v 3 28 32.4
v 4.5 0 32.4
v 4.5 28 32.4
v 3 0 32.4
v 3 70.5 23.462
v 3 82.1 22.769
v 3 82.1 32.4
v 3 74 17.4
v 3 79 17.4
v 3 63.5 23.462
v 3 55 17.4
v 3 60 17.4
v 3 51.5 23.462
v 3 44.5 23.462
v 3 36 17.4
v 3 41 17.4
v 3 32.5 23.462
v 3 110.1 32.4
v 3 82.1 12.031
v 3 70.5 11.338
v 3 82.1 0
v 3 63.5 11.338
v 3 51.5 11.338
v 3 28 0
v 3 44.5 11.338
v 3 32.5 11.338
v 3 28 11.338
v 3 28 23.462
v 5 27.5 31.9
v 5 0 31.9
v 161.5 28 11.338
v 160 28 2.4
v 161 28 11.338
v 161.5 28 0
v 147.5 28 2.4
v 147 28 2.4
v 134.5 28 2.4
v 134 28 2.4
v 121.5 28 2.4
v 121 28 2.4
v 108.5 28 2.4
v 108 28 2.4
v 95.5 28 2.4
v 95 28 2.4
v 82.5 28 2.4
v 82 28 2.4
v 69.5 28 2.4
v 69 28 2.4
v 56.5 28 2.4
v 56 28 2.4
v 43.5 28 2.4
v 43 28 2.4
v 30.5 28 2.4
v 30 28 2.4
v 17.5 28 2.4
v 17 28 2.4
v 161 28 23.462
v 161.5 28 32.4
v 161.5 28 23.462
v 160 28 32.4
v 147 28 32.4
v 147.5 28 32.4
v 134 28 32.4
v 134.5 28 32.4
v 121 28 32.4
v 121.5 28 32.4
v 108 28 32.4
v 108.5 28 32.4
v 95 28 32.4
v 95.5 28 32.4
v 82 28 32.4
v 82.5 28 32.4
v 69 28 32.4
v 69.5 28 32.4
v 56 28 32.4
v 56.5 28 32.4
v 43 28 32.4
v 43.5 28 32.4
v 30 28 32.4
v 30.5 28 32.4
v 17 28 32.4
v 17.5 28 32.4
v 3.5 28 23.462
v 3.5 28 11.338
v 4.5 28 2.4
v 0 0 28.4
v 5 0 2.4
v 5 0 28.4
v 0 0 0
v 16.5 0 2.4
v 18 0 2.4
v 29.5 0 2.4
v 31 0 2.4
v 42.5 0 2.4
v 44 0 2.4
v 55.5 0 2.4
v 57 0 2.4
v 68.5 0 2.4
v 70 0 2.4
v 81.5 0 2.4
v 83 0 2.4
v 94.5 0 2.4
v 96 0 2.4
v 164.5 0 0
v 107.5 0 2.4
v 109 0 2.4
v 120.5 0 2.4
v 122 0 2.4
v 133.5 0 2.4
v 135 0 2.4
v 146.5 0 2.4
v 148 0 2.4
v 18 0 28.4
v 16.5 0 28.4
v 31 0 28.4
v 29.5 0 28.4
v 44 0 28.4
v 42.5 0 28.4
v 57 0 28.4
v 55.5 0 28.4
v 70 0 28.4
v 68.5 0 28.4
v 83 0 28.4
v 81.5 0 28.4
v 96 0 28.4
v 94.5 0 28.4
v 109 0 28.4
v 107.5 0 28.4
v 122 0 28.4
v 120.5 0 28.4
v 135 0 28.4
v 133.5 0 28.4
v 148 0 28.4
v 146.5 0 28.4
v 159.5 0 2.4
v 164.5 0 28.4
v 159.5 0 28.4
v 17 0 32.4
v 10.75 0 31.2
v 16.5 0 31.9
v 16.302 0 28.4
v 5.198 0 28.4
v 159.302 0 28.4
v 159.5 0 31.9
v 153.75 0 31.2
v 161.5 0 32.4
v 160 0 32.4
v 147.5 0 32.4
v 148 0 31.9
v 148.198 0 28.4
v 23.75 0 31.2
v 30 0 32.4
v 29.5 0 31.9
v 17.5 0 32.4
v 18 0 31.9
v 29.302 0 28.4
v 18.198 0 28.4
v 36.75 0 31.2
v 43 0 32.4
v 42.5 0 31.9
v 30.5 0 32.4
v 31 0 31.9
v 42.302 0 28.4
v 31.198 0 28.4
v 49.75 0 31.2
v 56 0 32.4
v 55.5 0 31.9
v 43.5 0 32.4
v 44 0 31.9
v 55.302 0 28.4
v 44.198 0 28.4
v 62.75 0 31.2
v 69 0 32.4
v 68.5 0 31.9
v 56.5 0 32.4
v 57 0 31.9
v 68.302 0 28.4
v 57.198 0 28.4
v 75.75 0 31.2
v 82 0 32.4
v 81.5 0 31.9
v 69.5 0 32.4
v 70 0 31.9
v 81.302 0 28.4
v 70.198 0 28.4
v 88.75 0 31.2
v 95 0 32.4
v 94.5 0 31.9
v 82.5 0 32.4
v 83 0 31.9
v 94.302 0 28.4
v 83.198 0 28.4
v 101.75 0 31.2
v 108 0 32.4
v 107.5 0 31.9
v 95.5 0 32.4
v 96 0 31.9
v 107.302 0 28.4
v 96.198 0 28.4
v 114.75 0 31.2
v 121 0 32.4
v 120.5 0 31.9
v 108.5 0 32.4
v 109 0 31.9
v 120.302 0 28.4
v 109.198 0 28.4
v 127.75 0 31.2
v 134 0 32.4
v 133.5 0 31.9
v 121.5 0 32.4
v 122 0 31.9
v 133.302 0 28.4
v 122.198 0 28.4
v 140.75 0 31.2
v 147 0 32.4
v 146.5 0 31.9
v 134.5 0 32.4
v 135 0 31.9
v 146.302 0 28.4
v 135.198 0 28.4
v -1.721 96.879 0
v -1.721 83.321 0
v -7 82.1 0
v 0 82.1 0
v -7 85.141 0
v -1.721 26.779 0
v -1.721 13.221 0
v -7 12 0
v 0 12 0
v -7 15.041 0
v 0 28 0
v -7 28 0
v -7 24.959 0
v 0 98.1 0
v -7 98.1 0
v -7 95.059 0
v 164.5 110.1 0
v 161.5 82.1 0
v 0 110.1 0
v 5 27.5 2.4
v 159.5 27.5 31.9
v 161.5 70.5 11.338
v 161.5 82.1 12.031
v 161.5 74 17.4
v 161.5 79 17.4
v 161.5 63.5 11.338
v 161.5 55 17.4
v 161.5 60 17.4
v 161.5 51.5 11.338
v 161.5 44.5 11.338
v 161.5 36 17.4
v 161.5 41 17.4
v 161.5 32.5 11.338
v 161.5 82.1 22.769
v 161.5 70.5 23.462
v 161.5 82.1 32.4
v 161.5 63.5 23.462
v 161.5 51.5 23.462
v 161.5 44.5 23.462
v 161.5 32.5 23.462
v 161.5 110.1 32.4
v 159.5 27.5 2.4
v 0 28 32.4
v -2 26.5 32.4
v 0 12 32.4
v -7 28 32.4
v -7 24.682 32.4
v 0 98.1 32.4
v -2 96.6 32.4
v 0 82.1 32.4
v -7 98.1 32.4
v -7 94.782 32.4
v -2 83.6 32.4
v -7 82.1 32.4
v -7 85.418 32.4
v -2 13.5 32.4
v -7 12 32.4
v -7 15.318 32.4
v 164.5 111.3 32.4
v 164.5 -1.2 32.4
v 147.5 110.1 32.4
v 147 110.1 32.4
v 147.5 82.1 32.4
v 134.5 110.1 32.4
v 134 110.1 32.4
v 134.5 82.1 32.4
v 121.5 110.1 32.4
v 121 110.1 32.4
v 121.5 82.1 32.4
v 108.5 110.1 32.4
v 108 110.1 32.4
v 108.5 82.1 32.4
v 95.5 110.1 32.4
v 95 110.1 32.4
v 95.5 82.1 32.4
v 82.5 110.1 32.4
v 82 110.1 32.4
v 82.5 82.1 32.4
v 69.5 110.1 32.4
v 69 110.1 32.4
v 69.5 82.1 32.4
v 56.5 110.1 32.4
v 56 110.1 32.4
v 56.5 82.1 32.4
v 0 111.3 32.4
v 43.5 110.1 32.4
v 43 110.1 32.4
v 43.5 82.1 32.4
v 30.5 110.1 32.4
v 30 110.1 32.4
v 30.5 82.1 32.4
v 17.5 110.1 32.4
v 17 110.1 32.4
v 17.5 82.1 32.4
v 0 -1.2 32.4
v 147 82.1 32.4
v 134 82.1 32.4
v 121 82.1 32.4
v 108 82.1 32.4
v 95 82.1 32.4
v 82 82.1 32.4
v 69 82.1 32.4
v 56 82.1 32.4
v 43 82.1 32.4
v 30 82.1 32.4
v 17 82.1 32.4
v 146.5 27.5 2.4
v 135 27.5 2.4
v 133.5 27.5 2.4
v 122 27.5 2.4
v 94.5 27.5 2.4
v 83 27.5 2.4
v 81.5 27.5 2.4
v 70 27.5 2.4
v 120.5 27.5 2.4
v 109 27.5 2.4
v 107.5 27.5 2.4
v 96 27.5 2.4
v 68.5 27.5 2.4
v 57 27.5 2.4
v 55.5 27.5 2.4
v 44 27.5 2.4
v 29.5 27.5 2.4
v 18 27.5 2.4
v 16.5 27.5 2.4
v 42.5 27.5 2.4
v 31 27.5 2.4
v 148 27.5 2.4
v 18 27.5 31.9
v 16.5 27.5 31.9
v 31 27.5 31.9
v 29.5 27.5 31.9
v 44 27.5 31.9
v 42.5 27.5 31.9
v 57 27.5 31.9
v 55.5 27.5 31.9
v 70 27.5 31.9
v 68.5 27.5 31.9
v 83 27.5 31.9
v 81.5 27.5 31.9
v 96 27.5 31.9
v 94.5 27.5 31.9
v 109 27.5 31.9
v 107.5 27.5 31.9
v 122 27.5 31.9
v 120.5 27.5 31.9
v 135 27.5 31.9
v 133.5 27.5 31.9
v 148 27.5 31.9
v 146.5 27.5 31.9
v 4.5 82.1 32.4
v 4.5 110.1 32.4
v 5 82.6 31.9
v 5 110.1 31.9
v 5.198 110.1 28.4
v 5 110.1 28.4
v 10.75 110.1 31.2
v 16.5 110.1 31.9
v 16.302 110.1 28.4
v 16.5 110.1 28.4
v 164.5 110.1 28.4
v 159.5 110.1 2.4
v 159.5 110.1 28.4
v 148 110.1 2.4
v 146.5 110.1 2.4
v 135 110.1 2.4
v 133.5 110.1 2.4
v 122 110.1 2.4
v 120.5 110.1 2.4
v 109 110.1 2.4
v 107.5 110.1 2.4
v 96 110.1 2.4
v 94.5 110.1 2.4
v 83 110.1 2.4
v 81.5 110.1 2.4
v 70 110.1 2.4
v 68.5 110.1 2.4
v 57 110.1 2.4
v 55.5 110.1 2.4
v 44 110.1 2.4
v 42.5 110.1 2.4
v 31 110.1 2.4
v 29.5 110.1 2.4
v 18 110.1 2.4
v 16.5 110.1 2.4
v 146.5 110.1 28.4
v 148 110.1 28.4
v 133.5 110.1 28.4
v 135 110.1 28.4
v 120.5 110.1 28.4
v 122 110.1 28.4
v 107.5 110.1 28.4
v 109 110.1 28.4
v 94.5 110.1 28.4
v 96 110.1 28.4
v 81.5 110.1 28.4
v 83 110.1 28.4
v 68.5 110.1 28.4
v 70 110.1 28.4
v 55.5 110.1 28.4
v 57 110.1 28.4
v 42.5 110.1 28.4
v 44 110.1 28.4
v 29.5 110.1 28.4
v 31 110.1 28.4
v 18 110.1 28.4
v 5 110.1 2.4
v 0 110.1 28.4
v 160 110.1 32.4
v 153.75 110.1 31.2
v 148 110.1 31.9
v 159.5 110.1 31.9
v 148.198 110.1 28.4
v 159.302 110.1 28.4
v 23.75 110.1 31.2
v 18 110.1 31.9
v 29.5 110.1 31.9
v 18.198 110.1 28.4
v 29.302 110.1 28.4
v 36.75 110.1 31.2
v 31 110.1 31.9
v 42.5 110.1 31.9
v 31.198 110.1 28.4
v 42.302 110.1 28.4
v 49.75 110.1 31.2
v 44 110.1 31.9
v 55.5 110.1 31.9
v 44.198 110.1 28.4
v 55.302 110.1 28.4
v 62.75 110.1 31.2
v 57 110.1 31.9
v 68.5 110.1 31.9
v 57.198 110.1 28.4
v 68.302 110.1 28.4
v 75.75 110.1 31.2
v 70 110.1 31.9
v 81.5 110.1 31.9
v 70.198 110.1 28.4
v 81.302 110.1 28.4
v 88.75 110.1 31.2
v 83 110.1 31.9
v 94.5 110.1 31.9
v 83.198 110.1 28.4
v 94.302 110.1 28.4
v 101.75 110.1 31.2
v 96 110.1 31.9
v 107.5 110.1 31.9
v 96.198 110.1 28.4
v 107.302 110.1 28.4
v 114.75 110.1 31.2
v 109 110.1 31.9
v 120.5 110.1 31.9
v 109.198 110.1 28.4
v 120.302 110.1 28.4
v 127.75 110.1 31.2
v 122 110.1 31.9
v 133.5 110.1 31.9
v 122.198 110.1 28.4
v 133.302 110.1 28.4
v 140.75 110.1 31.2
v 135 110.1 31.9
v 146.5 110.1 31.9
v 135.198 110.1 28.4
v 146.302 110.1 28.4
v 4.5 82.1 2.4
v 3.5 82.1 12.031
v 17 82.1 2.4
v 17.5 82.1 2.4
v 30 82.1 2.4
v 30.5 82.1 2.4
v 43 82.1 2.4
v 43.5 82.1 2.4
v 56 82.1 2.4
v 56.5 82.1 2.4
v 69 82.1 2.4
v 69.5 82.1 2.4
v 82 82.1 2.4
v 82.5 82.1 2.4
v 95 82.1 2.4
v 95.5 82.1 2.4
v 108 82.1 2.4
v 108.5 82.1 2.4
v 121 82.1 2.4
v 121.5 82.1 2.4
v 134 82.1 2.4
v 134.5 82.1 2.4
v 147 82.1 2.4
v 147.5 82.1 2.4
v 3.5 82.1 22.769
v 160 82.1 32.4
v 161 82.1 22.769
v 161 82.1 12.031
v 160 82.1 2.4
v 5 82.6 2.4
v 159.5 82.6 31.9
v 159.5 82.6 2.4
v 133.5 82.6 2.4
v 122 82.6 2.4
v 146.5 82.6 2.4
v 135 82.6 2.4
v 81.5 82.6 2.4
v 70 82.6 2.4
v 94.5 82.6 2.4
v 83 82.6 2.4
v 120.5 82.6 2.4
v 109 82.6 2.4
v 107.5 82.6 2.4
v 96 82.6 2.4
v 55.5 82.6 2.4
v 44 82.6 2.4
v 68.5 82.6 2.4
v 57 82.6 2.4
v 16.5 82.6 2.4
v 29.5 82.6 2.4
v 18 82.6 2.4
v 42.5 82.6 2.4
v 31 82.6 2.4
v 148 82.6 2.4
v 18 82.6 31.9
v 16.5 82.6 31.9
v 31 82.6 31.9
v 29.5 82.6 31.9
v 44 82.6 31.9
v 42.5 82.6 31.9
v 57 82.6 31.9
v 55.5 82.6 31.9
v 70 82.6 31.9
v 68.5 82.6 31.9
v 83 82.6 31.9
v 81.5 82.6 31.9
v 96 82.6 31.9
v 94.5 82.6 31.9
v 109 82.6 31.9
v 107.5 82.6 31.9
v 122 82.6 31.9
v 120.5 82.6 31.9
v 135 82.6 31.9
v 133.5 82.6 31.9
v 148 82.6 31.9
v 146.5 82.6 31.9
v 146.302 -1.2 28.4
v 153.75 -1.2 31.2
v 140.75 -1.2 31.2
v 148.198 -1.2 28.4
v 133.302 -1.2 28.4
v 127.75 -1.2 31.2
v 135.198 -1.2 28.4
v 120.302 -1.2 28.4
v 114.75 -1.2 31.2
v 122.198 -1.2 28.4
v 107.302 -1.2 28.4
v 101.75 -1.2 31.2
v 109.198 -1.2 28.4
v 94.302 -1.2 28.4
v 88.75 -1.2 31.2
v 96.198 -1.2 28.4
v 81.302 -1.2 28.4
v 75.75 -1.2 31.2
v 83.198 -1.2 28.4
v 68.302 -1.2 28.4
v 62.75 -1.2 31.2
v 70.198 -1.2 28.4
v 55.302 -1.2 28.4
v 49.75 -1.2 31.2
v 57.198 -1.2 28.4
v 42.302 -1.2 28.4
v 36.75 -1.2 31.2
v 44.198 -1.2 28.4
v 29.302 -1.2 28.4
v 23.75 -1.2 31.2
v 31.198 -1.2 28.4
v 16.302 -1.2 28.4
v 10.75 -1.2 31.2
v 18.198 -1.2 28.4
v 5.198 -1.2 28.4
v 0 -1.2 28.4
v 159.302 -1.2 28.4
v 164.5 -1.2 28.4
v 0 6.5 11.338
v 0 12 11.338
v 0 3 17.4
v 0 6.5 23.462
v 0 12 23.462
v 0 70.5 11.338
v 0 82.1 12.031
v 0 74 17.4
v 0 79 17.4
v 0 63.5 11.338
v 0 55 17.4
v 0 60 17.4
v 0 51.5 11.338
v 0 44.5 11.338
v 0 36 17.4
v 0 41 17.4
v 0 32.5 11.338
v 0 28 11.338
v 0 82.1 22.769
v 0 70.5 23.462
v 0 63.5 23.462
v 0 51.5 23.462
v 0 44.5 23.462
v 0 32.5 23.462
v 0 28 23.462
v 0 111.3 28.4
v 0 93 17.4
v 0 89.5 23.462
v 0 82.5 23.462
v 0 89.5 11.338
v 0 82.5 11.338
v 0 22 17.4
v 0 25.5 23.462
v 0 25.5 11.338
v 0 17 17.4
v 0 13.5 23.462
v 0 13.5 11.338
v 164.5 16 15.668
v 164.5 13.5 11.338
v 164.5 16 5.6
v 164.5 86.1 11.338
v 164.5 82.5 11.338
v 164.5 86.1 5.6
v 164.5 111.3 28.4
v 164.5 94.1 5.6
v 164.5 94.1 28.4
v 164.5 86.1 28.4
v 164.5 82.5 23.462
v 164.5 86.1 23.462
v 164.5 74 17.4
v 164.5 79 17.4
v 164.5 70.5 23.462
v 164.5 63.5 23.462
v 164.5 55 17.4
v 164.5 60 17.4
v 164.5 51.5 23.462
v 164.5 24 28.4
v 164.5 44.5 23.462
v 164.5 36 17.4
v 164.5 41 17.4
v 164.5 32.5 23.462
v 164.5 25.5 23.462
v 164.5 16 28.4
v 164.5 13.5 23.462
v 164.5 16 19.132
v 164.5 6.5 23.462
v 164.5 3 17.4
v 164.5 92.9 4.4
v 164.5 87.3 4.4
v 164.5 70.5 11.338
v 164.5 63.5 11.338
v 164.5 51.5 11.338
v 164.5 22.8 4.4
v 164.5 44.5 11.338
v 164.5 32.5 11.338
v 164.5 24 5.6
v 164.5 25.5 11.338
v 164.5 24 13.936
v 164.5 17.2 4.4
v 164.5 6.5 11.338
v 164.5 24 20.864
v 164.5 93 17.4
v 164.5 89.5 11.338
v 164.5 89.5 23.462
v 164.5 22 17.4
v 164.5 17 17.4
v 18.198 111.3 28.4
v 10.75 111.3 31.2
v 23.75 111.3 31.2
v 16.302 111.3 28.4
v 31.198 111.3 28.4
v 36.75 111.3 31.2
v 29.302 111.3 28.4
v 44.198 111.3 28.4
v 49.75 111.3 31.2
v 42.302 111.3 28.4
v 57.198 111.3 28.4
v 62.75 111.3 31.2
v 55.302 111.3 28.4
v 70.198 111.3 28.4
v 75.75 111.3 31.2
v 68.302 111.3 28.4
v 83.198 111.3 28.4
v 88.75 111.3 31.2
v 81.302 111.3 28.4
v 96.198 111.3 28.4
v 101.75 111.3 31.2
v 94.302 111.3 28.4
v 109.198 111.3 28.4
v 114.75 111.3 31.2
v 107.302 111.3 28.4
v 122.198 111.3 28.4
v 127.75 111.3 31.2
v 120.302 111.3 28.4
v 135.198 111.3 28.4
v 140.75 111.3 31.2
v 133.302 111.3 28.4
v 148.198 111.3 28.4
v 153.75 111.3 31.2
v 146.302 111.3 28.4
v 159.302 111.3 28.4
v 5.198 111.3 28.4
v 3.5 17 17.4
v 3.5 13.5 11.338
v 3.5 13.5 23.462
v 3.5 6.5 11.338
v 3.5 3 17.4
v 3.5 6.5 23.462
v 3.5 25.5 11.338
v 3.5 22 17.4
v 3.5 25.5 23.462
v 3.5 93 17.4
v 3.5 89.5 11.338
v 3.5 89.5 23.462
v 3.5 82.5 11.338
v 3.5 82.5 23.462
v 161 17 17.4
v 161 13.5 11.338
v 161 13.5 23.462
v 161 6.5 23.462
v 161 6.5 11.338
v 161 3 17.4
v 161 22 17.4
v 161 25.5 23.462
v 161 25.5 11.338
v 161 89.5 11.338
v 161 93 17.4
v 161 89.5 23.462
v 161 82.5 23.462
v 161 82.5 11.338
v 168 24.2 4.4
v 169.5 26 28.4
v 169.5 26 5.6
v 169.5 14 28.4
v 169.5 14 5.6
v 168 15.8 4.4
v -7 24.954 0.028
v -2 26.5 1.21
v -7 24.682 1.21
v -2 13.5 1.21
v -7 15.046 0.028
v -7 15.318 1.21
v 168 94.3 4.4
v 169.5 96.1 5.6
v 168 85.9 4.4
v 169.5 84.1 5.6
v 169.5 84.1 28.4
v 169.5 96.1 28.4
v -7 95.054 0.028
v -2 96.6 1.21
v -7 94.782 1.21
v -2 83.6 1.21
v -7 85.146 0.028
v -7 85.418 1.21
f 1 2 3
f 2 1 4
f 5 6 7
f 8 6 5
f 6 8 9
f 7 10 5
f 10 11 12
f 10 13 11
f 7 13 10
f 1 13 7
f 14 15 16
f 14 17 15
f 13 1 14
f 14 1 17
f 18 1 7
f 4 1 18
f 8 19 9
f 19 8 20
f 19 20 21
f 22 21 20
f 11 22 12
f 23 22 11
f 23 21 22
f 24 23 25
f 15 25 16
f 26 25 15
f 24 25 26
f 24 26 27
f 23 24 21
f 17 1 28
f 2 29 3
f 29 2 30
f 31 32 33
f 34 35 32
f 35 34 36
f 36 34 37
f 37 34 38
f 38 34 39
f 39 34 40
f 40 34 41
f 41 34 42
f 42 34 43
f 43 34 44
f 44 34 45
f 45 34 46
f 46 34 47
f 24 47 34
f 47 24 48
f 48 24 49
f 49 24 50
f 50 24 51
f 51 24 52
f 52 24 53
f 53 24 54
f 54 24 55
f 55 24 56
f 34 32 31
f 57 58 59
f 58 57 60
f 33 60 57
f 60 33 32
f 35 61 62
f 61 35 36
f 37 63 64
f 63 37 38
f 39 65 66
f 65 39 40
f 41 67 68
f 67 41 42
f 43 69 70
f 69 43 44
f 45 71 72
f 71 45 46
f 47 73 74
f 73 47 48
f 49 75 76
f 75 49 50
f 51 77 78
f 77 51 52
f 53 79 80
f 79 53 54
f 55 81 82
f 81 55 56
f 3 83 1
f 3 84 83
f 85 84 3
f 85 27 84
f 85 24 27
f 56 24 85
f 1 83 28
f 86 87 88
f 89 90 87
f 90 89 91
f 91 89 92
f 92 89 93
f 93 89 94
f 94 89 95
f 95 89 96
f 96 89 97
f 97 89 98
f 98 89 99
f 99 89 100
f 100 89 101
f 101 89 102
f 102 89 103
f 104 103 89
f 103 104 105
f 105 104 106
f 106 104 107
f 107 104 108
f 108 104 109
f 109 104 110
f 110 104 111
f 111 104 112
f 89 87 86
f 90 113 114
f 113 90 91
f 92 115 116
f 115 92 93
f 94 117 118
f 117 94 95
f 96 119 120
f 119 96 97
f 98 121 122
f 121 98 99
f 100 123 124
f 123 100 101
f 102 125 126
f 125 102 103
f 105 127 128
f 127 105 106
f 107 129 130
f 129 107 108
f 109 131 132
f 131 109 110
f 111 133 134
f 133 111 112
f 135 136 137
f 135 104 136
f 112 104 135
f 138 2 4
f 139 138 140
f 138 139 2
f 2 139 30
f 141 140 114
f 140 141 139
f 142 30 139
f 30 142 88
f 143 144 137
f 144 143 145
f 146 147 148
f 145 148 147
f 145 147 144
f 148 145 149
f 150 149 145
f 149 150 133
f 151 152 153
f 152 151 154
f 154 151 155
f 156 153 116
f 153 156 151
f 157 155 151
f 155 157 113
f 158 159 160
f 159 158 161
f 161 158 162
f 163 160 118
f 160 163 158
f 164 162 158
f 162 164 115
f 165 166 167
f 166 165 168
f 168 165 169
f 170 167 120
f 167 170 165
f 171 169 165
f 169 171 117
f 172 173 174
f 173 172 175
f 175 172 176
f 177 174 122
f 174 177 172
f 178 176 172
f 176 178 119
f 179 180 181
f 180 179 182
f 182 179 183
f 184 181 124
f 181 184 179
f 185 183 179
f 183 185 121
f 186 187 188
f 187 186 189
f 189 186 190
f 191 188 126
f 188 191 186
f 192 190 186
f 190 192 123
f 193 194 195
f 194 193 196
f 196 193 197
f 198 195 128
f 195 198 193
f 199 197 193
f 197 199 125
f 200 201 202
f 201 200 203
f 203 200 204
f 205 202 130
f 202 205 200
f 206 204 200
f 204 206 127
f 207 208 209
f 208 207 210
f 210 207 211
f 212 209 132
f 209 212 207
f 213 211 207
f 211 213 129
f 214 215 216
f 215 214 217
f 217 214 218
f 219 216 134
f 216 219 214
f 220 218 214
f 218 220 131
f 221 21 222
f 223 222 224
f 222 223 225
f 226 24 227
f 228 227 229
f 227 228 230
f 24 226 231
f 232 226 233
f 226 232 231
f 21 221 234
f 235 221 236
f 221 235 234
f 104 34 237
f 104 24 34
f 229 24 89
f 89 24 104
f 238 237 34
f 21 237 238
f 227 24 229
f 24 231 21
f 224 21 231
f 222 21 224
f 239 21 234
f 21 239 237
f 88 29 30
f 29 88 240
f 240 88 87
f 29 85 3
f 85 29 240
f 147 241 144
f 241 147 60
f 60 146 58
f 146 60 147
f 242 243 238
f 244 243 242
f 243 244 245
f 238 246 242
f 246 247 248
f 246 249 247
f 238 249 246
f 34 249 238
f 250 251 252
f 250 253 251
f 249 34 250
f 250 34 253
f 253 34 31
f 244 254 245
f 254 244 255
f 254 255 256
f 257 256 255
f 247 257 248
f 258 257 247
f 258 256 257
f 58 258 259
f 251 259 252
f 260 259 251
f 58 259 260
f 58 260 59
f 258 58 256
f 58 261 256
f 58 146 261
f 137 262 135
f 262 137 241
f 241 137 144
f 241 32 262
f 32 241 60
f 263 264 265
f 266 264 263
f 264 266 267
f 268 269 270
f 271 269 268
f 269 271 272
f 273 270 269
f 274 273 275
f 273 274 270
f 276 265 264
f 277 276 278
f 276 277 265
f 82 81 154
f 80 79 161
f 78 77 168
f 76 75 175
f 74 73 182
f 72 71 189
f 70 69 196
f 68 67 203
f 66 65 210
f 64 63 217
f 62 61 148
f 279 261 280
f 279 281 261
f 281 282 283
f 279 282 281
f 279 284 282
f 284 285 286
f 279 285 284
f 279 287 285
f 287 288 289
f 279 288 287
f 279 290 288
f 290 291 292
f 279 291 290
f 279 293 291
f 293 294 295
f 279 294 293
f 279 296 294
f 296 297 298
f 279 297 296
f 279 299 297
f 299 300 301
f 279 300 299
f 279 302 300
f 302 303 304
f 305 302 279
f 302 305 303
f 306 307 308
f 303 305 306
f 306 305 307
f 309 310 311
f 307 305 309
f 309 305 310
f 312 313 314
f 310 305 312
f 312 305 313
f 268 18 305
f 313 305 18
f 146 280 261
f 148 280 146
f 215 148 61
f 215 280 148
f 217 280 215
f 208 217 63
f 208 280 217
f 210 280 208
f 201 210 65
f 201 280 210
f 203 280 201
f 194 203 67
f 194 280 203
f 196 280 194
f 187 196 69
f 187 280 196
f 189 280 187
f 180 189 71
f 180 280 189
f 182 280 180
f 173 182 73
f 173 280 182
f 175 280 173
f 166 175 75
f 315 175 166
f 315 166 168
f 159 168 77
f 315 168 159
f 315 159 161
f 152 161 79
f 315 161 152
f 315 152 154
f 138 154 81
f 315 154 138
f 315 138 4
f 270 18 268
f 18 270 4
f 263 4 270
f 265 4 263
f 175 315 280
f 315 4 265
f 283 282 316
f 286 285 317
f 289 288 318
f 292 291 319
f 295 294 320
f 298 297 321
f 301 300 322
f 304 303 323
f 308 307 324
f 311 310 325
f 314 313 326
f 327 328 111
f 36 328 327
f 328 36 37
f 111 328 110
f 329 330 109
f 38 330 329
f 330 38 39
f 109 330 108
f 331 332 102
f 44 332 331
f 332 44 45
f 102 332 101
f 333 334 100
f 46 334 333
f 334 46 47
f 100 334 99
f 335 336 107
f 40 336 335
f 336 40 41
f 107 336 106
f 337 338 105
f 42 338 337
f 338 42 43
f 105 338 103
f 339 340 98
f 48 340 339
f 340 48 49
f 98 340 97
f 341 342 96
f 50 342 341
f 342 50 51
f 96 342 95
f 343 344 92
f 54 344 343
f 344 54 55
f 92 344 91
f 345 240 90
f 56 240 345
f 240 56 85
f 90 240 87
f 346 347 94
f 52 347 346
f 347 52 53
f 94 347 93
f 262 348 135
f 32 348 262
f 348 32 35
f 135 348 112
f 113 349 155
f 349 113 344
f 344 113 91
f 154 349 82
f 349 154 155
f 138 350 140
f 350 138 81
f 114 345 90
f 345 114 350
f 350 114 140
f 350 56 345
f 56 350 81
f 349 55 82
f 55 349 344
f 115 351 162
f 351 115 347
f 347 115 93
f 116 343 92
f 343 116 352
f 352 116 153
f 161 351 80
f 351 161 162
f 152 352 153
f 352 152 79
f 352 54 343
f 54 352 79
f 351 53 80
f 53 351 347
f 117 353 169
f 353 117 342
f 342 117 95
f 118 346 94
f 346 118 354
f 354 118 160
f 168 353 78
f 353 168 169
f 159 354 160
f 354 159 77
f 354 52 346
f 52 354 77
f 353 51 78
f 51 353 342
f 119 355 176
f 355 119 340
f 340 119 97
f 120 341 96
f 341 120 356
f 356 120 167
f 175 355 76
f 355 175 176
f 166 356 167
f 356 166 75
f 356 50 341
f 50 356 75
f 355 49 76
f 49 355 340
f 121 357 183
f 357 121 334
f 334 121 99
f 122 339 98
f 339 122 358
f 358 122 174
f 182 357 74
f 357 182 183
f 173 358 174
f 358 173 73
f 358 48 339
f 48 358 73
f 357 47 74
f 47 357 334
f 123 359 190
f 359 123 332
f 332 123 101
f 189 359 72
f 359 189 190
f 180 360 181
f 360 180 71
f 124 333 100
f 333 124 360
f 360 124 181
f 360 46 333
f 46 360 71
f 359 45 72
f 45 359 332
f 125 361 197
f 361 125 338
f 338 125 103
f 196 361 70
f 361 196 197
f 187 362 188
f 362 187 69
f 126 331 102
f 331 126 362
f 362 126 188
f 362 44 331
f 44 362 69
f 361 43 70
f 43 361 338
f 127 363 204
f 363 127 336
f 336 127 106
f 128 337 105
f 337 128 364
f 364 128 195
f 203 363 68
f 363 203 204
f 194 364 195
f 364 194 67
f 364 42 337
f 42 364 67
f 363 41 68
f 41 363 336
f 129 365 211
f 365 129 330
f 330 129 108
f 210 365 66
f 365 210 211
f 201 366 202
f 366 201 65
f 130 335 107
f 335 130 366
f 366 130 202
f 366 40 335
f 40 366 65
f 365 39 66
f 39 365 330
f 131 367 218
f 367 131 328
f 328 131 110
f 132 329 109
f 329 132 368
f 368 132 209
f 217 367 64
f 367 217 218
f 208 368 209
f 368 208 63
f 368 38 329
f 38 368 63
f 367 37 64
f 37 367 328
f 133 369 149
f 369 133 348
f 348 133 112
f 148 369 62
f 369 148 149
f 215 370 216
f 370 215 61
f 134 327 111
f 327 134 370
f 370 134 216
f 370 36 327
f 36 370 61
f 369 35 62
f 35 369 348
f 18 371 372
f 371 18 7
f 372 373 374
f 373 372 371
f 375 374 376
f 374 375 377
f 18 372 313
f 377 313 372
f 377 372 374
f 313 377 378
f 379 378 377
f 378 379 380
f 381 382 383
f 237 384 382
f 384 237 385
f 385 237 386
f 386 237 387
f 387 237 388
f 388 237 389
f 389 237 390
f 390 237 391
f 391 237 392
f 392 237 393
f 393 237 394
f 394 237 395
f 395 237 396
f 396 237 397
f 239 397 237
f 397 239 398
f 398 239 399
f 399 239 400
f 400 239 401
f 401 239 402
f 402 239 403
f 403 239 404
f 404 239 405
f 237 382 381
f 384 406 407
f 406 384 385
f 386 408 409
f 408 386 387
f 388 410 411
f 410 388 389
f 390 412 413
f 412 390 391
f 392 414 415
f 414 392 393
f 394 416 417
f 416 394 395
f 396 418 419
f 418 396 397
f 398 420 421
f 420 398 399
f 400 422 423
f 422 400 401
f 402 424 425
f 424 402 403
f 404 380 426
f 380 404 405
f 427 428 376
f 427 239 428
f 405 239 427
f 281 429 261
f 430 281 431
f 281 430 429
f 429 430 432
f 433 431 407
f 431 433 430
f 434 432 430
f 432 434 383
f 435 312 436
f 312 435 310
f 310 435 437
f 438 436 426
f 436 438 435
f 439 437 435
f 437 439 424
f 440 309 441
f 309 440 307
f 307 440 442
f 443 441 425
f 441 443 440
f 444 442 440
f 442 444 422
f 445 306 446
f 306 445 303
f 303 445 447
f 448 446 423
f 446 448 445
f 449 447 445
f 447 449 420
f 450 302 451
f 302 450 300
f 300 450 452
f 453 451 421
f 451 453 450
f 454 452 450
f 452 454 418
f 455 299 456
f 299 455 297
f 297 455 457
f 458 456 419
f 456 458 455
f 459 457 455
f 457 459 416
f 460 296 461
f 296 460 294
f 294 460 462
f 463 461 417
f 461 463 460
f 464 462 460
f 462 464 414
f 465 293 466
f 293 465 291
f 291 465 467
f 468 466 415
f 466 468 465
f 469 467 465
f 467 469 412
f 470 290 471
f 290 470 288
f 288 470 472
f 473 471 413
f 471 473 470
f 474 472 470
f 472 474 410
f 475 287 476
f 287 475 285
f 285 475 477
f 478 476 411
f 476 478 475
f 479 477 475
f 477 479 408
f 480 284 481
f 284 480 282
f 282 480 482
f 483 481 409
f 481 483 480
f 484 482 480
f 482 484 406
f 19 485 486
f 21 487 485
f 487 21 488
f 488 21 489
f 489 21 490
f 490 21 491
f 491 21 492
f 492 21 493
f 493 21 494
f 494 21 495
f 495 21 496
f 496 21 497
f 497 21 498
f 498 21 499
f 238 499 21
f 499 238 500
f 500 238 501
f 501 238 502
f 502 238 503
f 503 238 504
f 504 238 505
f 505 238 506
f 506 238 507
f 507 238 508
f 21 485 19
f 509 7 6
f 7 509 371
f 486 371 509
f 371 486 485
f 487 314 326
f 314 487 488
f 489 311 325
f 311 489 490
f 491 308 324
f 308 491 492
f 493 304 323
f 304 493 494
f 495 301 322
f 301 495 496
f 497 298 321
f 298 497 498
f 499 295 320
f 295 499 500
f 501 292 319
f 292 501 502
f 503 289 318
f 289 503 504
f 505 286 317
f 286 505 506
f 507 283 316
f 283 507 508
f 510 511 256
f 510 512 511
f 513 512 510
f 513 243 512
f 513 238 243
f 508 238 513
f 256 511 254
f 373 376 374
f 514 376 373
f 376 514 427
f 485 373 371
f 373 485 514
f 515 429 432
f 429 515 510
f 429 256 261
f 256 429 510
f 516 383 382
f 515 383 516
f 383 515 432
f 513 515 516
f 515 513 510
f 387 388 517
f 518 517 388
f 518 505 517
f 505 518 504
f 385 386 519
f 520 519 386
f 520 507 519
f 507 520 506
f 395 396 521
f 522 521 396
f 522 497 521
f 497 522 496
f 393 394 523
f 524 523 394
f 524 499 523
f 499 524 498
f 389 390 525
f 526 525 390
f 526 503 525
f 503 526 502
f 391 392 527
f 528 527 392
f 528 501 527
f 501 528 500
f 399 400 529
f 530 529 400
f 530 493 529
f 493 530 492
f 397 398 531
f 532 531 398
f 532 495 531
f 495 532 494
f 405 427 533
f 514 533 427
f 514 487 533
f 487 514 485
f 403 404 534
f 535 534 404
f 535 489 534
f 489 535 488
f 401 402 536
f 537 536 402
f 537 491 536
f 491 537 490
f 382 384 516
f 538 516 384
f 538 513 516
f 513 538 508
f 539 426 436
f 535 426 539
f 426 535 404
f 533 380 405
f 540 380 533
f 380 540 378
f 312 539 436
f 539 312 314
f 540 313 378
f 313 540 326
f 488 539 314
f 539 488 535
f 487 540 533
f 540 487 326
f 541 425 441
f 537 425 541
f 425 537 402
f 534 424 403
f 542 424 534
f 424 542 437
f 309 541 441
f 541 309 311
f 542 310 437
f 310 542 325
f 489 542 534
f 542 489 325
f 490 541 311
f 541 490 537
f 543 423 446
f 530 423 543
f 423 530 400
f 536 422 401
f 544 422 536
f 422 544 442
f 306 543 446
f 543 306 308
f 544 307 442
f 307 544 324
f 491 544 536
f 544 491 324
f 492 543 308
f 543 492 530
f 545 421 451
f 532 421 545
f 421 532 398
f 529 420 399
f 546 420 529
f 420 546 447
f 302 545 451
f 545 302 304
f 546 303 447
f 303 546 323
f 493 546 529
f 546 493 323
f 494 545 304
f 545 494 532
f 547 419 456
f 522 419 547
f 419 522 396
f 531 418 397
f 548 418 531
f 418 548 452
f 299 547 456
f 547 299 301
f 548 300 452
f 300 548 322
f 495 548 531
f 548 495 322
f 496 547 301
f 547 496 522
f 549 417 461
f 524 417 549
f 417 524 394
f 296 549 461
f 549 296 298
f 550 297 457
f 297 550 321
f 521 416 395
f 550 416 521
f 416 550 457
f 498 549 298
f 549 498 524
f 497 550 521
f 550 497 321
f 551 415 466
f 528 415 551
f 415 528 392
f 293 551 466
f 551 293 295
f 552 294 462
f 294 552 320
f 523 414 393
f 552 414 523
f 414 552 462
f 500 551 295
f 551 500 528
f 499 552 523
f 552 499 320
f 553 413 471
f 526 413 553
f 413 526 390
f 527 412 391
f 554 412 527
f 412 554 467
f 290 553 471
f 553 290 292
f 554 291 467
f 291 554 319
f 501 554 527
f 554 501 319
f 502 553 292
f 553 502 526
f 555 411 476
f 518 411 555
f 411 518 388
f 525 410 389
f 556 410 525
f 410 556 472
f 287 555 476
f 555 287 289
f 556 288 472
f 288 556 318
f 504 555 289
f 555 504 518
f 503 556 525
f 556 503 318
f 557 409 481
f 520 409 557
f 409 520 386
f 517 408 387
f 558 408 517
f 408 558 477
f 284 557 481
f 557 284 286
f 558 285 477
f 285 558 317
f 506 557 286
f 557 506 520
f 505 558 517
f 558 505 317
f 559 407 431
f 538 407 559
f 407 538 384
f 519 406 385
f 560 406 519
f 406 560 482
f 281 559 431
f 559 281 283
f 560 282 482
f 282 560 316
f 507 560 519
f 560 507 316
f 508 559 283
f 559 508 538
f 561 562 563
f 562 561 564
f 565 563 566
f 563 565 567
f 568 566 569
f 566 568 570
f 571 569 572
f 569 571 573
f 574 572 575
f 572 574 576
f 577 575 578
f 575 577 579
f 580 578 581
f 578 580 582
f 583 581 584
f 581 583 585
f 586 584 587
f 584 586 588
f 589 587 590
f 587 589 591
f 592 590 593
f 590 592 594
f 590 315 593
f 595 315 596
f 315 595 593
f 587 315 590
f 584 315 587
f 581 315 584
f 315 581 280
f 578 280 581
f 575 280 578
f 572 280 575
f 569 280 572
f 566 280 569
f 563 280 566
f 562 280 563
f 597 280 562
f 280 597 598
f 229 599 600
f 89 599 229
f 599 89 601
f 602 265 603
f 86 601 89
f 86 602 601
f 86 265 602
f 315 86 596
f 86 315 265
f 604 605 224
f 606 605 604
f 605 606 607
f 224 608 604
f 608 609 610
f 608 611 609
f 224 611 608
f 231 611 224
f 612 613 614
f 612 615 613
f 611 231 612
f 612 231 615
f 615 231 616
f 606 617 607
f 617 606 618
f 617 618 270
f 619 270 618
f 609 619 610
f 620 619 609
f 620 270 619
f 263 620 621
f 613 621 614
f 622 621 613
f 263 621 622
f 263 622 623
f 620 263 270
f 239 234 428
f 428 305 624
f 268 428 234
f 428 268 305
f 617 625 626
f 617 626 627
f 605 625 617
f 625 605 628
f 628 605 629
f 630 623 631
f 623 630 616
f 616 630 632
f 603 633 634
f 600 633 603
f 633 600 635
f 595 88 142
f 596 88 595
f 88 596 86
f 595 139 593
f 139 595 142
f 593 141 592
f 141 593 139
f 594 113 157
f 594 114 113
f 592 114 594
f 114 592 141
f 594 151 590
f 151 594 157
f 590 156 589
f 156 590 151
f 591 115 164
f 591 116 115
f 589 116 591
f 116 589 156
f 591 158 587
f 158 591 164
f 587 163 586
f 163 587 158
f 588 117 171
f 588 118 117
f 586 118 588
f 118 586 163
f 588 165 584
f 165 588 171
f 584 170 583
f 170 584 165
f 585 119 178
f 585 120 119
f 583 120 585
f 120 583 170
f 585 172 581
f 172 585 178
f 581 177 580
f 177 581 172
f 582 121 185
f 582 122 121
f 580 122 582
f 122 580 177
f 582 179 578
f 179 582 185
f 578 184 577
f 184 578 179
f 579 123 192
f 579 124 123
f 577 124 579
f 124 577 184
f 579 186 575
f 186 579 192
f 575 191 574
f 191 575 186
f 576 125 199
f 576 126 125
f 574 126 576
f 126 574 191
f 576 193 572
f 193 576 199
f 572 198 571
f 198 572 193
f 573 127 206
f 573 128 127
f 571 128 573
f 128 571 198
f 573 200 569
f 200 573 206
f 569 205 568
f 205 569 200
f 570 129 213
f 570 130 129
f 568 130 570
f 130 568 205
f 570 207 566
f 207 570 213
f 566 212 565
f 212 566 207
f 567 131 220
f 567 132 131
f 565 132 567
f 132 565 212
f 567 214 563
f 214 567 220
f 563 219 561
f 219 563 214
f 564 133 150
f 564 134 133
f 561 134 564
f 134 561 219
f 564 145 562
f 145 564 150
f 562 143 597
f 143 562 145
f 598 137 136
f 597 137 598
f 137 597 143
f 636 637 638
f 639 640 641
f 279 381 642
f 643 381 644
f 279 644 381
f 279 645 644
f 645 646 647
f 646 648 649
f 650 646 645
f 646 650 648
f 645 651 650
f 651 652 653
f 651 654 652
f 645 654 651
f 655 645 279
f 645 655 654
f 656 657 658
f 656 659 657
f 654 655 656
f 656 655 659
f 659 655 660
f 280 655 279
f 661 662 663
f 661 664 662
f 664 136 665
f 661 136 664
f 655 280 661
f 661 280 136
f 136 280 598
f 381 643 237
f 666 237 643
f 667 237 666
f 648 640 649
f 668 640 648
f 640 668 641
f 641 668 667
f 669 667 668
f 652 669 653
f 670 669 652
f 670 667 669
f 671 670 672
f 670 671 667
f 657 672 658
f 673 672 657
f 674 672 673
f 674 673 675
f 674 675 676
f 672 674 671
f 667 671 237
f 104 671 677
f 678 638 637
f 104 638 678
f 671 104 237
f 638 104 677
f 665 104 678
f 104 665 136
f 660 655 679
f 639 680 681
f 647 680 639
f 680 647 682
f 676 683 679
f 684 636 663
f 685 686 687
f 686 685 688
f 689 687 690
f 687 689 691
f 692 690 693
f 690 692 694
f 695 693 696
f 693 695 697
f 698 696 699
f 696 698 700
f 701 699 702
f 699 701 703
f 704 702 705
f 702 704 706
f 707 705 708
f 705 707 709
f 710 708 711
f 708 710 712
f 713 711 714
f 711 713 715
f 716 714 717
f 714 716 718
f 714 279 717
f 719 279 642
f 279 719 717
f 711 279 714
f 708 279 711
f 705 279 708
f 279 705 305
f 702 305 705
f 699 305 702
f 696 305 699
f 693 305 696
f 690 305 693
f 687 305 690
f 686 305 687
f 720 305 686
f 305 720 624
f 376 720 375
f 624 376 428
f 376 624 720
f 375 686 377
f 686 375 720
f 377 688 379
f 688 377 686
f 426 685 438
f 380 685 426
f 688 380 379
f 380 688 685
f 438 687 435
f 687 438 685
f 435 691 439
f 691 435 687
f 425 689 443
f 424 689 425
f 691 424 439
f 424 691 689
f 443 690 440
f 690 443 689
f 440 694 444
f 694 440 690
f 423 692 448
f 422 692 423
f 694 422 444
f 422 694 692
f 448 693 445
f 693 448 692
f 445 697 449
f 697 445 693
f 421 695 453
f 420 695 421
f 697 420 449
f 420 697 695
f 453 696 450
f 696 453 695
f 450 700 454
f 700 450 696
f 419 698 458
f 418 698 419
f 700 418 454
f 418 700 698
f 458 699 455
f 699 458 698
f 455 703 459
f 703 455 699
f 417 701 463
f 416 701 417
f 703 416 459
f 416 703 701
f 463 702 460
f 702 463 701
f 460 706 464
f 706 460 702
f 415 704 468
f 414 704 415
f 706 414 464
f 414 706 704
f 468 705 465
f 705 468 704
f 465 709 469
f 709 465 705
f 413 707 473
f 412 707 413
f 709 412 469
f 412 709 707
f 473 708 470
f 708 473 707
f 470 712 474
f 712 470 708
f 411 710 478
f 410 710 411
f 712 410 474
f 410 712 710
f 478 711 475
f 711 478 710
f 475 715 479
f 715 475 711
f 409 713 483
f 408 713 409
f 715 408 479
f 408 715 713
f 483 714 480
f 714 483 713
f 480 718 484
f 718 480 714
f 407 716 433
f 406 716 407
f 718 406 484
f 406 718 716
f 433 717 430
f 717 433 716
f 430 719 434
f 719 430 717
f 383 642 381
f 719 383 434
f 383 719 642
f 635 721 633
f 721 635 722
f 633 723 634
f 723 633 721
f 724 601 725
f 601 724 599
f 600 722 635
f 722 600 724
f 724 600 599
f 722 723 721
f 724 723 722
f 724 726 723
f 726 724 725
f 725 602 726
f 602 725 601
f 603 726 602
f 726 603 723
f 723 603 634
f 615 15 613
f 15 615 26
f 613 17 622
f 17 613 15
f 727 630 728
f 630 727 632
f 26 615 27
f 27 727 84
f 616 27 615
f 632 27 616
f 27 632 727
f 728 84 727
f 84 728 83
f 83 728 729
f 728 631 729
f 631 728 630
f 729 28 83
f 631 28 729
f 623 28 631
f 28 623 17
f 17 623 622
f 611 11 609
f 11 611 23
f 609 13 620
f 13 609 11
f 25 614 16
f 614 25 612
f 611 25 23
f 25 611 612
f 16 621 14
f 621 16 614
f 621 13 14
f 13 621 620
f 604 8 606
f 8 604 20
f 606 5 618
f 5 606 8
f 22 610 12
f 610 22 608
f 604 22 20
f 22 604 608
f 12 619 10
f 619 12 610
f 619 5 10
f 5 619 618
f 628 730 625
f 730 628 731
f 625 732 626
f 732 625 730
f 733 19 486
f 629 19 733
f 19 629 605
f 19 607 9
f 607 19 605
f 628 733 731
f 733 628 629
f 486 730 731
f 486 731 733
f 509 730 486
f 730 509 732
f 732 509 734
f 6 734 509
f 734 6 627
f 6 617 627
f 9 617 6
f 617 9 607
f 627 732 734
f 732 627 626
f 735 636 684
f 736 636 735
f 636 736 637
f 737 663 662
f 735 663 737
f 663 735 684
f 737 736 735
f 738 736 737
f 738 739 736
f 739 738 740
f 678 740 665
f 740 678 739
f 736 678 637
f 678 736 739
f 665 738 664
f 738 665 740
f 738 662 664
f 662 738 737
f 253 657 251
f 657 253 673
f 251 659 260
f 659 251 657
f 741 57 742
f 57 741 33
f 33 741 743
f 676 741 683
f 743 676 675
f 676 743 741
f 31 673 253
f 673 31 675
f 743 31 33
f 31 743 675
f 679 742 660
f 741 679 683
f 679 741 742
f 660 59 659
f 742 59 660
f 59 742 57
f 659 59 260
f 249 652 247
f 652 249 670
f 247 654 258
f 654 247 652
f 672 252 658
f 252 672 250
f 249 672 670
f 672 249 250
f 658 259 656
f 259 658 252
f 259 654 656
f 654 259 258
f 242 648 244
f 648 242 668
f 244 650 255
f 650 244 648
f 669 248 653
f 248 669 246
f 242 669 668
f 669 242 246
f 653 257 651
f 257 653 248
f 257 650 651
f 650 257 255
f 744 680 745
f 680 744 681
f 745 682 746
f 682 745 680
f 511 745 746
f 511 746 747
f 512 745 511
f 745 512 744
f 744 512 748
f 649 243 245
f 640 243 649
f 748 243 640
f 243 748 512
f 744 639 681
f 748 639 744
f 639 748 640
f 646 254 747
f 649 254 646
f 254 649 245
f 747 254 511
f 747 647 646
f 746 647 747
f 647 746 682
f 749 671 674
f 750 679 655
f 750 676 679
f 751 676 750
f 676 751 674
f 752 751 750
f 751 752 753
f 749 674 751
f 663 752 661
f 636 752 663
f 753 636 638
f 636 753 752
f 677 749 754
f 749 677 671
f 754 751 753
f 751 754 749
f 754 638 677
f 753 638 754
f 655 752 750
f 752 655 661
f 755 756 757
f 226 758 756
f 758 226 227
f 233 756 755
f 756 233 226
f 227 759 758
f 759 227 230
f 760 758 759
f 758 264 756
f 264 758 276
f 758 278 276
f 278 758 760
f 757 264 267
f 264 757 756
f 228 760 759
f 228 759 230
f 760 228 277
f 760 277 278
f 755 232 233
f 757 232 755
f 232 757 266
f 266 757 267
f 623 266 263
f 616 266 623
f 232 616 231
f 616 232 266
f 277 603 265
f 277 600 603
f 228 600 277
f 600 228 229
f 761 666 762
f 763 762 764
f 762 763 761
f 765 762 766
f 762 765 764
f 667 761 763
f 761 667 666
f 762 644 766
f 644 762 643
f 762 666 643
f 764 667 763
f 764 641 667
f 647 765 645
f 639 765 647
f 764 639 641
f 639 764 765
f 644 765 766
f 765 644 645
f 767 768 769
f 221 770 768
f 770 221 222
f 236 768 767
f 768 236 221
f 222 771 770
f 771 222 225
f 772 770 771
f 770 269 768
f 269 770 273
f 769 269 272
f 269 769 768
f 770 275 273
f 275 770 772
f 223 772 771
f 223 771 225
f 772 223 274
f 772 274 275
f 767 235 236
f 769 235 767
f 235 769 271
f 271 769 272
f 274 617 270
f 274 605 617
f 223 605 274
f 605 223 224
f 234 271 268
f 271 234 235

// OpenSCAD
/*
  switch-case-organizer-01

  Organizador aberto para 12 caixas fisicas de jogos Nintendo Switch / Switch 2.
  O usuario apoia o organizador na prateleira, introduz cada caixa por cima em
  um dos 12 canais e retira pela lombada. Guias altas nas duas pontas seguram
  cada caixa contra inclinacao; o vao central deixa os dedos alcancarem as faces.

  Duas unidades identicas acoplam lado a lado: alinhe os dois pares de rabos-
  de-andorinha, mantenha as bases paralelas e baixe a unidade da direita por
  todo o curso vertical. Para separar, segure ambas as bases e levante uma
  unidade 28.0 mm; nao e necessario retirar as caixas dos canais.

  Interface reconstruida da malha organizadores/terceiros/nintendo-switch-game-organizer-4-sizes/switch-game-tray-12.3mf, que traz
  inequivocamente 12 canais de 11.25 mm, passo de 13 mm e apoio de 110.1 mm.
  Nenhuma dimensao de catalogo da caixa foi presumida.

  Export canonico (caminhos absolutos):
    flatpak run org.openscad.OpenSCAD -o /home/afonsolelis/repos/3dmodels/organizadores/switch-case-organizer-01/stl/switch-case-organizer-01.stl -D 'part="organizer"' /home/afonsolelis/repos/3dmodels/organizadores/switch-case-organizer-01/switch-case-organizer-01.scad
    flatpak run org.openscad.OpenSCAD -o /home/afonsolelis/repos/3dmodels/organizadores/switch-case-organizer-01/3mf/switch-case-organizer-01.3mf -D 'part="plate"' /home/afonsolelis/repos/3dmodels/organizadores/switch-case-organizer-01/switch-case-organizer-01.scad
    flatpak run org.openscad.OpenSCAD -o /home/afonsolelis/repos/3dmodels/organizadores/switch-case-organizer-01/3mf/sem-encaixe.3mf -D 'part="plate"' -D 'modular_connectors=false' /home/afonsolelis/repos/3dmodels/organizadores/switch-case-organizer-01/switch-case-organizer-01.scad

  ATENCAO: pela linha de comando, mire a variavel FINAL (-D modular_connectors=false),
  nunca o *_override. No OpenSCAD 2021.01 o -D entra no fim do escopo de topo, entao o
  is_undef(..._override) da linha 48 ja foi avaliado e o valor e ignorado EM SILENCIO.
*/

/* [Exportacao] */
part = "organizer"; // [organizer,plate,assembly,collision,retention_test] Parte, job ou verificacao.
collision_z = is_undef(collision_z_override) ? 0 : collision_z_override; // mm; amostra do curso para teste booleano.
assembly_lift = is_undef(assembly_lift_override) ? 0 : assembly_lift_override; // mm; visualizacao do curso vertical.
$fn = 48;           // segmentos; acabamento dos recortes hexagonais.

/* [Caixas e capacidade] */
case_count = is_undef(case_count_override) ? 12 : case_count_override; // unidades; caixas por organizador.
case_slot_w = is_undef(case_slot_w_override) ? 11.5 : case_slot_w_override; // mm; 11.25 na referencia; +0.25 porque as caixas engatavam nas guias.
slot_pitch = is_undef(slot_pitch_override) ? 13.0 : slot_pitch_override; // mm; distancia entre centros na referencia.
support_depth = is_undef(support_depth_override) ? 110.1 : support_depth_override; // mm; profundidade apoiada pela referencia.

/* [Estrutura] */
floor_t = 2.4;        // mm; piso das duas sapatas.
guide_h = 30.0;       // mm acima do piso; 15.6 mm a mais que as guias de 14.4 mm da referencia.
guide_depth = 28.0;   // mm em cada ponta; quatro pontos de apoio por caixa.
end_wall_t = 2.0;     // mm; paredes externas que fecham a primeira/ultima canaleta.
side_wall_t = 3.0;    // mm; longarinas laterais que unem as duas sapatas.
side_wall_h = 30.0;   // mm acima do piso; trava as extremidades laterais.
hex_r = 7.0;          // mm; raio dos hexagonos ponta-pra-cima nas longarinas.
hex_pitch = 19.0;     // mm; passo dos hexagonos ao longo da profundidade.
tie_t = 1.2;          // mm; tres linhas de bico 0.4, espessura externa da cinta.
tie_h = 4.0;          // mm; altura da viga de amarracao perto do topo das guias.
lead_in = 0.5;        // mm a 45 graus; chanfro de entrada no topo e na ponta interna das guias.

/* [Acoplamento modular] */
modular_connectors = is_undef(modular_connectors_override) ? true : modular_connectors_override; // liga/desliga; macho direito e femea esquerda.
slide_clearance = 0.5; // mm por lado; folga atual do repo para deslizamento longo.
connector_depth = 5.0; // mm; projecao lateral util do rabo-de-andorinha.
connector_neck_w = 8.0; // mm; largura do pescoco no eixo Y.
connector_head_w = 12.0; // mm; largura da cabeca no eixo Y.
connector_h = 24.0; // mm; comprimento vertical engatado.
connector_bottom = 4.4; // mm; afasta macho do pe de elefante e preserva o piso.
connector_receiver_wall = 1.5; // mm; parede minima ao redor da femea.
elephant_relief = 0.3; // mm por face; alivio adicional no primeiro 1.2 mm da femea.
connector_y = [20, support_depth-20]; // mm; centros dos dois conectores, acessiveis nas pontas.

// Derivados
divider_t = slot_pitch - case_slot_w;
inner_w = case_count * case_slot_w + (case_count - 1) * divider_t;
interface_w = inner_w + 2 * end_wall_t;
overall_w = interface_w + 2 * side_wall_t;
overall_d = support_depth;
overall_h = floor_t + max(guide_h, side_wall_h);
center_access = support_depth - 2 * guide_depth;
hex_count = floor((support_depth - 2 * 10) / hex_pitch) + 1;
receiver_depth = connector_depth + slide_clearance + connector_receiver_wall;
receiver_w = connector_head_w + 2*slide_clearance + 2*connector_receiver_wall;
connector_top = connector_bottom + connector_h;
assembly_vertical_course = overall_h - connector_bottom;
coupled_pitch = overall_w + receiver_depth + slide_clearance;
receiver_opening_w = connector_neck_w + 2*slide_clearance
                   + (connector_head_w-connector_neck_w)*(slide_clearance/connector_depth);
retention_per_side = (connector_head_w-receiver_opening_w)/2;
modular_min_x = modular_connectors ? -receiver_depth : 0;
modular_max_x = modular_connectors ? overall_w + connector_depth : overall_w;
print_w = modular_max_x - modular_min_x;
print_d = overall_d + 2*tie_t;

assert(case_count >= 1, "case_count precisa ser >= 1");
assert(divider_t >= 1.2, "divisorias finas demais para FDM");
assert(divider_t - 2*lead_in >= 0.4, "chanfro de entrada come a divisoria toda");
assert(center_access >= 35, "vao central pequeno demais para alcance dos dedos");
assert(connector_head_w > connector_neck_w, "rabo-de-andorinha precisa de retencao positiva");
assert(connector_bottom >= floor_t+1.2, "macho baixo demais: risco de pe de elefante");
assert(connector_top <= overall_h-2, "falta material acima/abaixo do conector");
assert(retention_per_side >= 1.0, "retencao lateral insuficiente no receptor");
assert(tie_t >= 1.2 && tie_h >= 3*tie_t, "cinta fina demais para amarrar as divisorias");
assert(print_w <= 210 && print_d <= 210 && overall_h <= 220,
       "organizador excede o limite confortavel da AD5X");

echo("DERIVADOS switch-case-organizer-01");
echo(case_count=case_count, case_slot_w=case_slot_w, divider_t=divider_t, slot_pitch=slot_pitch);
echo(interface_w=interface_w, extreme_channels_mm=[case_slot_w,case_slot_w]);
echo(overall_mm=[overall_w, overall_d, overall_h], guide_mm=[guide_h, guide_depth], center_access=center_access);
echo(modular_bbox_mm=[print_w,print_d,overall_h], connector_clearance_per_side=slide_clearance,
     connector_engagement_h=connector_h, assembly_vertical_course=assembly_vertical_course,
     coupled_body_pitch=coupled_pitch, receiver_opening_w=receiver_opening_w,
     retention_per_side=retention_per_side);

module pointy_hex_2d(r) {
  polygon([for (a=[0:60:300]) [r*cos(a+30), r*sin(a+30)]]);
}

module side_hex_cuts(x0) {
  for (i=[0:hex_count-1]) {
    y = 10 + i * hex_pitch;
    translate([x0, y, floor_t + side_wall_h/2])
      rotate([0,90,0])
        linear_extrude(height=side_wall_t+1, center=true)
          pointy_hex_2d(hex_r);
  }
}

module front_tie() {
  tie_z = overall_h-tie_h;
  // Barra externa y=-1.2..0. Cada abertura triangular sobe ate deixar uma
  // faixa continua de 1.2 mm; as diagonais eliminam pontes retas de 11.25 mm.
  translate([0,0,tie_z])
    rotate([90,0,0])
      linear_extrude(height=tie_t)
        difference() {
          square([overall_w,tie_h]);
          for (i=[0:case_count-1]) {
            sx = side_wall_t+end_wall_t+i*slot_pitch;
            polygon([[sx,-0.1],
                     [sx+case_slot_w,-0.1],
                     [sx+case_slot_w/2,tie_h-tie_t]]);
          }
        }
}

module guide_ties() {
  front_tie();
  translate([0,overall_d,0]) mirror([0,1,0]) front_tie();
}

// Perfil XY do macho. A cabeca mais larga impede separacao lateral; a extrusao
// em Z permite montar por cima sem flexionar paredes e sem suporte.
module male_profile(extra=0) {
  polygon([[0,-connector_neck_w/2-extra],
           [connector_depth+extra,-connector_head_w/2-extra],
           [connector_depth+extra, connector_head_w/2+extra],
           [0, connector_neck_w/2+extra]]);
}

module male_connector(yc) {
  // Chanfro vertical de entrada de 1.2 mm: a ponta inferior menor centraliza
  // antes de os 24 mm de engate entrarem na femea.
  translate([overall_w, yc, connector_bottom])
    hull() {
      linear_extrude(height=0.01) scale([0.70,0.70]) male_profile();
      translate([0,0,1.2]) linear_extrude(height=0.01) male_profile();
    }
  translate([overall_w, yc, connector_bottom+1.2])
    linear_extrude(height=connector_h-1.2) male_profile();
}

module female_connector(yc) {
  difference() {
    // As duas paredes do receptor nascem na cama: nao ha anel suspenso nem
    // cantilever a 2.4 mm. A uniao com piso/longarina ocorre desde z=0.
    translate([-receiver_depth, yc-receiver_w/2, 0])
      cube([receiver_depth, receiver_w, overall_h]);
    // Canal aberto em cima e embaixo: a prateleira alinha as bases e a abertura
    // inferior elimina colisao/pe de elefante no curso completo.
    // A transformacao usa o passo real entre corpos: quando a copia vizinha
    // esta em coupled_pitch, este negativo coincide exatamente com seu macho,
    // acrescido de 0.5 mm em cada face Y e 0.5 mm alem da cabeca em X.
    translate([-receiver_depth-slide_clearance, yc, -0.1]) {
      // Funil curto contra pe de elefante: +0.3 mm por face na cama,
      // convergindo para a folga nominal de 0.5 mm em z=1.2.
      hull() {
        linear_extrude(height=0.01)
          male_profile(slide_clearance+elephant_relief);
        translate([0,0,1.3]) linear_extrude(height=0.01)
          male_profile(slide_clearance);
      }
      translate([0,0,1.3])
        linear_extrude(height=overall_h)
          male_profile(slide_clearance);
    }
  }
}

// Guia (divisoria ou parede de ponta) sem quinas vivas do lado da caixa:
// chanfro de 45 graus no topo e na aresta vertical voltada ao vao central,
// so nas faces que tocam a caixa (cl = face -X, cr = face +X).
// inner_max = true quando a ponta interna e o lado +Y da guia.
module guide_block(x0, w, y0, z0, h, inner_max, cl, cr) {
  c = lead_in;
  intersection() {
    // perfil XZ: topo chanfrado
    translate([x0, y0 + guide_depth, z0]) rotate([90, 0, 0])
      linear_extrude(guide_depth)
        polygon([[0, 0], [w, 0], [w, h - (cr ? c : 0)], [w - (cr ? c : 0), h],
                 [cl ? c : 0, h], [0, h - (cl ? c : 0)]]);
    // perfil XY: ponta interna chanfrada
    translate([x0, y0, z0]) linear_extrude(h)
      let(e = guide_depth)
        polygon(inner_max
          ? [[0, 0], [w, 0], [w, e - (cr ? c : 0)], [w - (cr ? c : 0), e],
             [cl ? c : 0, e], [0, e - (cl ? c : 0)]]
          : [[cl ? c : 0, 0], [w - (cr ? c : 0), 0], [w, cr ? c : 0],
             [w, guide_depth], [0, guide_depth], [0, cl ? c : 0]]);
  }
}

module organizer_core() {
  difference() {
    union() {
      // Duas sapatas largas sustentam as caixas perto das duas extremidades.
      cube([overall_w, guide_depth, floor_t]);
      translate([0, overall_d-guide_depth, 0]) cube([overall_w, guide_depth, floor_t]);

      // Longarinas unem as sapatas e impedem a peca de abrir/torcer.
      cube([side_wall_t, overall_d, overall_h]);
      translate([overall_w-side_wall_t, 0, 0]) cube([side_wall_t, overall_d, overall_h]);

      // Paredes externas e divisorias em ambas as pontas: a caixa recebe
      // quatro superficies-guia, duas na frente e duas atras.
      for (y0=[0, overall_d-guide_depth]) {
        // Toda a interface com as caixas comeca depois da longarina esquerda.
        // As longarinas ficam integralmente FORA dos canais extremos.
        inner_max = (y0 == 0);
        guide_block(side_wall_t, end_wall_t, y0, 0, floor_t+guide_h, inner_max, false, true);
        guide_block(side_wall_t+interface_w-end_wall_t, end_wall_t, y0, 0, floor_t+guide_h, inner_max, true, false);
        for (i=[1:case_count-1]) {
          x = side_wall_t + end_wall_t + i*case_slot_w + (i-1)*divider_t;
          guide_block(x, divider_t, y0, floor_t, guide_h, inner_max, true, true);
        }
      }
      guide_ties();
    }

    // Identidade visual do repo; faixa solida de 3 mm no piso e >=7 mm
    // nas pontas evita lascas junto das bordas.
    side_hex_cuts(side_wall_t/2);
    side_hex_cuts(overall_w-side_wall_t/2);
  }
}

module organizer() {
  union() {
    organizer_core();
    if (modular_connectors)
      for (yc=connector_y) {
        male_connector(yc);
        female_connector(yc);
      }
  }
}

module assembly() {
  organizer();
  translate([coupled_pitch,0,assembly_lift]) organizer();
}

module collision_at(zlift=0) {
  intersection() {
    organizer();
    translate([coupled_pitch,0,zlift]) organizer();
  }
}

module retention_test() {
  // Ao tentar afastar lateralmente a copia 1 mm, a cabeca deve interceptar
  // os ombros do receptor; intersecao nao vazia comprova a retencao positiva.
  intersection() {
    organizer();
    translate([coupled_pitch+1,0,0]) organizer();
  }
}

if (part == "organizer" || part == "plate") organizer();
else if (part == "assembly") assembly();
else if (part == "collision") collision_at(collision_z);
else if (part == "retention_test") retention_test();
else assert(false, str("part desconhecida: ", part));
